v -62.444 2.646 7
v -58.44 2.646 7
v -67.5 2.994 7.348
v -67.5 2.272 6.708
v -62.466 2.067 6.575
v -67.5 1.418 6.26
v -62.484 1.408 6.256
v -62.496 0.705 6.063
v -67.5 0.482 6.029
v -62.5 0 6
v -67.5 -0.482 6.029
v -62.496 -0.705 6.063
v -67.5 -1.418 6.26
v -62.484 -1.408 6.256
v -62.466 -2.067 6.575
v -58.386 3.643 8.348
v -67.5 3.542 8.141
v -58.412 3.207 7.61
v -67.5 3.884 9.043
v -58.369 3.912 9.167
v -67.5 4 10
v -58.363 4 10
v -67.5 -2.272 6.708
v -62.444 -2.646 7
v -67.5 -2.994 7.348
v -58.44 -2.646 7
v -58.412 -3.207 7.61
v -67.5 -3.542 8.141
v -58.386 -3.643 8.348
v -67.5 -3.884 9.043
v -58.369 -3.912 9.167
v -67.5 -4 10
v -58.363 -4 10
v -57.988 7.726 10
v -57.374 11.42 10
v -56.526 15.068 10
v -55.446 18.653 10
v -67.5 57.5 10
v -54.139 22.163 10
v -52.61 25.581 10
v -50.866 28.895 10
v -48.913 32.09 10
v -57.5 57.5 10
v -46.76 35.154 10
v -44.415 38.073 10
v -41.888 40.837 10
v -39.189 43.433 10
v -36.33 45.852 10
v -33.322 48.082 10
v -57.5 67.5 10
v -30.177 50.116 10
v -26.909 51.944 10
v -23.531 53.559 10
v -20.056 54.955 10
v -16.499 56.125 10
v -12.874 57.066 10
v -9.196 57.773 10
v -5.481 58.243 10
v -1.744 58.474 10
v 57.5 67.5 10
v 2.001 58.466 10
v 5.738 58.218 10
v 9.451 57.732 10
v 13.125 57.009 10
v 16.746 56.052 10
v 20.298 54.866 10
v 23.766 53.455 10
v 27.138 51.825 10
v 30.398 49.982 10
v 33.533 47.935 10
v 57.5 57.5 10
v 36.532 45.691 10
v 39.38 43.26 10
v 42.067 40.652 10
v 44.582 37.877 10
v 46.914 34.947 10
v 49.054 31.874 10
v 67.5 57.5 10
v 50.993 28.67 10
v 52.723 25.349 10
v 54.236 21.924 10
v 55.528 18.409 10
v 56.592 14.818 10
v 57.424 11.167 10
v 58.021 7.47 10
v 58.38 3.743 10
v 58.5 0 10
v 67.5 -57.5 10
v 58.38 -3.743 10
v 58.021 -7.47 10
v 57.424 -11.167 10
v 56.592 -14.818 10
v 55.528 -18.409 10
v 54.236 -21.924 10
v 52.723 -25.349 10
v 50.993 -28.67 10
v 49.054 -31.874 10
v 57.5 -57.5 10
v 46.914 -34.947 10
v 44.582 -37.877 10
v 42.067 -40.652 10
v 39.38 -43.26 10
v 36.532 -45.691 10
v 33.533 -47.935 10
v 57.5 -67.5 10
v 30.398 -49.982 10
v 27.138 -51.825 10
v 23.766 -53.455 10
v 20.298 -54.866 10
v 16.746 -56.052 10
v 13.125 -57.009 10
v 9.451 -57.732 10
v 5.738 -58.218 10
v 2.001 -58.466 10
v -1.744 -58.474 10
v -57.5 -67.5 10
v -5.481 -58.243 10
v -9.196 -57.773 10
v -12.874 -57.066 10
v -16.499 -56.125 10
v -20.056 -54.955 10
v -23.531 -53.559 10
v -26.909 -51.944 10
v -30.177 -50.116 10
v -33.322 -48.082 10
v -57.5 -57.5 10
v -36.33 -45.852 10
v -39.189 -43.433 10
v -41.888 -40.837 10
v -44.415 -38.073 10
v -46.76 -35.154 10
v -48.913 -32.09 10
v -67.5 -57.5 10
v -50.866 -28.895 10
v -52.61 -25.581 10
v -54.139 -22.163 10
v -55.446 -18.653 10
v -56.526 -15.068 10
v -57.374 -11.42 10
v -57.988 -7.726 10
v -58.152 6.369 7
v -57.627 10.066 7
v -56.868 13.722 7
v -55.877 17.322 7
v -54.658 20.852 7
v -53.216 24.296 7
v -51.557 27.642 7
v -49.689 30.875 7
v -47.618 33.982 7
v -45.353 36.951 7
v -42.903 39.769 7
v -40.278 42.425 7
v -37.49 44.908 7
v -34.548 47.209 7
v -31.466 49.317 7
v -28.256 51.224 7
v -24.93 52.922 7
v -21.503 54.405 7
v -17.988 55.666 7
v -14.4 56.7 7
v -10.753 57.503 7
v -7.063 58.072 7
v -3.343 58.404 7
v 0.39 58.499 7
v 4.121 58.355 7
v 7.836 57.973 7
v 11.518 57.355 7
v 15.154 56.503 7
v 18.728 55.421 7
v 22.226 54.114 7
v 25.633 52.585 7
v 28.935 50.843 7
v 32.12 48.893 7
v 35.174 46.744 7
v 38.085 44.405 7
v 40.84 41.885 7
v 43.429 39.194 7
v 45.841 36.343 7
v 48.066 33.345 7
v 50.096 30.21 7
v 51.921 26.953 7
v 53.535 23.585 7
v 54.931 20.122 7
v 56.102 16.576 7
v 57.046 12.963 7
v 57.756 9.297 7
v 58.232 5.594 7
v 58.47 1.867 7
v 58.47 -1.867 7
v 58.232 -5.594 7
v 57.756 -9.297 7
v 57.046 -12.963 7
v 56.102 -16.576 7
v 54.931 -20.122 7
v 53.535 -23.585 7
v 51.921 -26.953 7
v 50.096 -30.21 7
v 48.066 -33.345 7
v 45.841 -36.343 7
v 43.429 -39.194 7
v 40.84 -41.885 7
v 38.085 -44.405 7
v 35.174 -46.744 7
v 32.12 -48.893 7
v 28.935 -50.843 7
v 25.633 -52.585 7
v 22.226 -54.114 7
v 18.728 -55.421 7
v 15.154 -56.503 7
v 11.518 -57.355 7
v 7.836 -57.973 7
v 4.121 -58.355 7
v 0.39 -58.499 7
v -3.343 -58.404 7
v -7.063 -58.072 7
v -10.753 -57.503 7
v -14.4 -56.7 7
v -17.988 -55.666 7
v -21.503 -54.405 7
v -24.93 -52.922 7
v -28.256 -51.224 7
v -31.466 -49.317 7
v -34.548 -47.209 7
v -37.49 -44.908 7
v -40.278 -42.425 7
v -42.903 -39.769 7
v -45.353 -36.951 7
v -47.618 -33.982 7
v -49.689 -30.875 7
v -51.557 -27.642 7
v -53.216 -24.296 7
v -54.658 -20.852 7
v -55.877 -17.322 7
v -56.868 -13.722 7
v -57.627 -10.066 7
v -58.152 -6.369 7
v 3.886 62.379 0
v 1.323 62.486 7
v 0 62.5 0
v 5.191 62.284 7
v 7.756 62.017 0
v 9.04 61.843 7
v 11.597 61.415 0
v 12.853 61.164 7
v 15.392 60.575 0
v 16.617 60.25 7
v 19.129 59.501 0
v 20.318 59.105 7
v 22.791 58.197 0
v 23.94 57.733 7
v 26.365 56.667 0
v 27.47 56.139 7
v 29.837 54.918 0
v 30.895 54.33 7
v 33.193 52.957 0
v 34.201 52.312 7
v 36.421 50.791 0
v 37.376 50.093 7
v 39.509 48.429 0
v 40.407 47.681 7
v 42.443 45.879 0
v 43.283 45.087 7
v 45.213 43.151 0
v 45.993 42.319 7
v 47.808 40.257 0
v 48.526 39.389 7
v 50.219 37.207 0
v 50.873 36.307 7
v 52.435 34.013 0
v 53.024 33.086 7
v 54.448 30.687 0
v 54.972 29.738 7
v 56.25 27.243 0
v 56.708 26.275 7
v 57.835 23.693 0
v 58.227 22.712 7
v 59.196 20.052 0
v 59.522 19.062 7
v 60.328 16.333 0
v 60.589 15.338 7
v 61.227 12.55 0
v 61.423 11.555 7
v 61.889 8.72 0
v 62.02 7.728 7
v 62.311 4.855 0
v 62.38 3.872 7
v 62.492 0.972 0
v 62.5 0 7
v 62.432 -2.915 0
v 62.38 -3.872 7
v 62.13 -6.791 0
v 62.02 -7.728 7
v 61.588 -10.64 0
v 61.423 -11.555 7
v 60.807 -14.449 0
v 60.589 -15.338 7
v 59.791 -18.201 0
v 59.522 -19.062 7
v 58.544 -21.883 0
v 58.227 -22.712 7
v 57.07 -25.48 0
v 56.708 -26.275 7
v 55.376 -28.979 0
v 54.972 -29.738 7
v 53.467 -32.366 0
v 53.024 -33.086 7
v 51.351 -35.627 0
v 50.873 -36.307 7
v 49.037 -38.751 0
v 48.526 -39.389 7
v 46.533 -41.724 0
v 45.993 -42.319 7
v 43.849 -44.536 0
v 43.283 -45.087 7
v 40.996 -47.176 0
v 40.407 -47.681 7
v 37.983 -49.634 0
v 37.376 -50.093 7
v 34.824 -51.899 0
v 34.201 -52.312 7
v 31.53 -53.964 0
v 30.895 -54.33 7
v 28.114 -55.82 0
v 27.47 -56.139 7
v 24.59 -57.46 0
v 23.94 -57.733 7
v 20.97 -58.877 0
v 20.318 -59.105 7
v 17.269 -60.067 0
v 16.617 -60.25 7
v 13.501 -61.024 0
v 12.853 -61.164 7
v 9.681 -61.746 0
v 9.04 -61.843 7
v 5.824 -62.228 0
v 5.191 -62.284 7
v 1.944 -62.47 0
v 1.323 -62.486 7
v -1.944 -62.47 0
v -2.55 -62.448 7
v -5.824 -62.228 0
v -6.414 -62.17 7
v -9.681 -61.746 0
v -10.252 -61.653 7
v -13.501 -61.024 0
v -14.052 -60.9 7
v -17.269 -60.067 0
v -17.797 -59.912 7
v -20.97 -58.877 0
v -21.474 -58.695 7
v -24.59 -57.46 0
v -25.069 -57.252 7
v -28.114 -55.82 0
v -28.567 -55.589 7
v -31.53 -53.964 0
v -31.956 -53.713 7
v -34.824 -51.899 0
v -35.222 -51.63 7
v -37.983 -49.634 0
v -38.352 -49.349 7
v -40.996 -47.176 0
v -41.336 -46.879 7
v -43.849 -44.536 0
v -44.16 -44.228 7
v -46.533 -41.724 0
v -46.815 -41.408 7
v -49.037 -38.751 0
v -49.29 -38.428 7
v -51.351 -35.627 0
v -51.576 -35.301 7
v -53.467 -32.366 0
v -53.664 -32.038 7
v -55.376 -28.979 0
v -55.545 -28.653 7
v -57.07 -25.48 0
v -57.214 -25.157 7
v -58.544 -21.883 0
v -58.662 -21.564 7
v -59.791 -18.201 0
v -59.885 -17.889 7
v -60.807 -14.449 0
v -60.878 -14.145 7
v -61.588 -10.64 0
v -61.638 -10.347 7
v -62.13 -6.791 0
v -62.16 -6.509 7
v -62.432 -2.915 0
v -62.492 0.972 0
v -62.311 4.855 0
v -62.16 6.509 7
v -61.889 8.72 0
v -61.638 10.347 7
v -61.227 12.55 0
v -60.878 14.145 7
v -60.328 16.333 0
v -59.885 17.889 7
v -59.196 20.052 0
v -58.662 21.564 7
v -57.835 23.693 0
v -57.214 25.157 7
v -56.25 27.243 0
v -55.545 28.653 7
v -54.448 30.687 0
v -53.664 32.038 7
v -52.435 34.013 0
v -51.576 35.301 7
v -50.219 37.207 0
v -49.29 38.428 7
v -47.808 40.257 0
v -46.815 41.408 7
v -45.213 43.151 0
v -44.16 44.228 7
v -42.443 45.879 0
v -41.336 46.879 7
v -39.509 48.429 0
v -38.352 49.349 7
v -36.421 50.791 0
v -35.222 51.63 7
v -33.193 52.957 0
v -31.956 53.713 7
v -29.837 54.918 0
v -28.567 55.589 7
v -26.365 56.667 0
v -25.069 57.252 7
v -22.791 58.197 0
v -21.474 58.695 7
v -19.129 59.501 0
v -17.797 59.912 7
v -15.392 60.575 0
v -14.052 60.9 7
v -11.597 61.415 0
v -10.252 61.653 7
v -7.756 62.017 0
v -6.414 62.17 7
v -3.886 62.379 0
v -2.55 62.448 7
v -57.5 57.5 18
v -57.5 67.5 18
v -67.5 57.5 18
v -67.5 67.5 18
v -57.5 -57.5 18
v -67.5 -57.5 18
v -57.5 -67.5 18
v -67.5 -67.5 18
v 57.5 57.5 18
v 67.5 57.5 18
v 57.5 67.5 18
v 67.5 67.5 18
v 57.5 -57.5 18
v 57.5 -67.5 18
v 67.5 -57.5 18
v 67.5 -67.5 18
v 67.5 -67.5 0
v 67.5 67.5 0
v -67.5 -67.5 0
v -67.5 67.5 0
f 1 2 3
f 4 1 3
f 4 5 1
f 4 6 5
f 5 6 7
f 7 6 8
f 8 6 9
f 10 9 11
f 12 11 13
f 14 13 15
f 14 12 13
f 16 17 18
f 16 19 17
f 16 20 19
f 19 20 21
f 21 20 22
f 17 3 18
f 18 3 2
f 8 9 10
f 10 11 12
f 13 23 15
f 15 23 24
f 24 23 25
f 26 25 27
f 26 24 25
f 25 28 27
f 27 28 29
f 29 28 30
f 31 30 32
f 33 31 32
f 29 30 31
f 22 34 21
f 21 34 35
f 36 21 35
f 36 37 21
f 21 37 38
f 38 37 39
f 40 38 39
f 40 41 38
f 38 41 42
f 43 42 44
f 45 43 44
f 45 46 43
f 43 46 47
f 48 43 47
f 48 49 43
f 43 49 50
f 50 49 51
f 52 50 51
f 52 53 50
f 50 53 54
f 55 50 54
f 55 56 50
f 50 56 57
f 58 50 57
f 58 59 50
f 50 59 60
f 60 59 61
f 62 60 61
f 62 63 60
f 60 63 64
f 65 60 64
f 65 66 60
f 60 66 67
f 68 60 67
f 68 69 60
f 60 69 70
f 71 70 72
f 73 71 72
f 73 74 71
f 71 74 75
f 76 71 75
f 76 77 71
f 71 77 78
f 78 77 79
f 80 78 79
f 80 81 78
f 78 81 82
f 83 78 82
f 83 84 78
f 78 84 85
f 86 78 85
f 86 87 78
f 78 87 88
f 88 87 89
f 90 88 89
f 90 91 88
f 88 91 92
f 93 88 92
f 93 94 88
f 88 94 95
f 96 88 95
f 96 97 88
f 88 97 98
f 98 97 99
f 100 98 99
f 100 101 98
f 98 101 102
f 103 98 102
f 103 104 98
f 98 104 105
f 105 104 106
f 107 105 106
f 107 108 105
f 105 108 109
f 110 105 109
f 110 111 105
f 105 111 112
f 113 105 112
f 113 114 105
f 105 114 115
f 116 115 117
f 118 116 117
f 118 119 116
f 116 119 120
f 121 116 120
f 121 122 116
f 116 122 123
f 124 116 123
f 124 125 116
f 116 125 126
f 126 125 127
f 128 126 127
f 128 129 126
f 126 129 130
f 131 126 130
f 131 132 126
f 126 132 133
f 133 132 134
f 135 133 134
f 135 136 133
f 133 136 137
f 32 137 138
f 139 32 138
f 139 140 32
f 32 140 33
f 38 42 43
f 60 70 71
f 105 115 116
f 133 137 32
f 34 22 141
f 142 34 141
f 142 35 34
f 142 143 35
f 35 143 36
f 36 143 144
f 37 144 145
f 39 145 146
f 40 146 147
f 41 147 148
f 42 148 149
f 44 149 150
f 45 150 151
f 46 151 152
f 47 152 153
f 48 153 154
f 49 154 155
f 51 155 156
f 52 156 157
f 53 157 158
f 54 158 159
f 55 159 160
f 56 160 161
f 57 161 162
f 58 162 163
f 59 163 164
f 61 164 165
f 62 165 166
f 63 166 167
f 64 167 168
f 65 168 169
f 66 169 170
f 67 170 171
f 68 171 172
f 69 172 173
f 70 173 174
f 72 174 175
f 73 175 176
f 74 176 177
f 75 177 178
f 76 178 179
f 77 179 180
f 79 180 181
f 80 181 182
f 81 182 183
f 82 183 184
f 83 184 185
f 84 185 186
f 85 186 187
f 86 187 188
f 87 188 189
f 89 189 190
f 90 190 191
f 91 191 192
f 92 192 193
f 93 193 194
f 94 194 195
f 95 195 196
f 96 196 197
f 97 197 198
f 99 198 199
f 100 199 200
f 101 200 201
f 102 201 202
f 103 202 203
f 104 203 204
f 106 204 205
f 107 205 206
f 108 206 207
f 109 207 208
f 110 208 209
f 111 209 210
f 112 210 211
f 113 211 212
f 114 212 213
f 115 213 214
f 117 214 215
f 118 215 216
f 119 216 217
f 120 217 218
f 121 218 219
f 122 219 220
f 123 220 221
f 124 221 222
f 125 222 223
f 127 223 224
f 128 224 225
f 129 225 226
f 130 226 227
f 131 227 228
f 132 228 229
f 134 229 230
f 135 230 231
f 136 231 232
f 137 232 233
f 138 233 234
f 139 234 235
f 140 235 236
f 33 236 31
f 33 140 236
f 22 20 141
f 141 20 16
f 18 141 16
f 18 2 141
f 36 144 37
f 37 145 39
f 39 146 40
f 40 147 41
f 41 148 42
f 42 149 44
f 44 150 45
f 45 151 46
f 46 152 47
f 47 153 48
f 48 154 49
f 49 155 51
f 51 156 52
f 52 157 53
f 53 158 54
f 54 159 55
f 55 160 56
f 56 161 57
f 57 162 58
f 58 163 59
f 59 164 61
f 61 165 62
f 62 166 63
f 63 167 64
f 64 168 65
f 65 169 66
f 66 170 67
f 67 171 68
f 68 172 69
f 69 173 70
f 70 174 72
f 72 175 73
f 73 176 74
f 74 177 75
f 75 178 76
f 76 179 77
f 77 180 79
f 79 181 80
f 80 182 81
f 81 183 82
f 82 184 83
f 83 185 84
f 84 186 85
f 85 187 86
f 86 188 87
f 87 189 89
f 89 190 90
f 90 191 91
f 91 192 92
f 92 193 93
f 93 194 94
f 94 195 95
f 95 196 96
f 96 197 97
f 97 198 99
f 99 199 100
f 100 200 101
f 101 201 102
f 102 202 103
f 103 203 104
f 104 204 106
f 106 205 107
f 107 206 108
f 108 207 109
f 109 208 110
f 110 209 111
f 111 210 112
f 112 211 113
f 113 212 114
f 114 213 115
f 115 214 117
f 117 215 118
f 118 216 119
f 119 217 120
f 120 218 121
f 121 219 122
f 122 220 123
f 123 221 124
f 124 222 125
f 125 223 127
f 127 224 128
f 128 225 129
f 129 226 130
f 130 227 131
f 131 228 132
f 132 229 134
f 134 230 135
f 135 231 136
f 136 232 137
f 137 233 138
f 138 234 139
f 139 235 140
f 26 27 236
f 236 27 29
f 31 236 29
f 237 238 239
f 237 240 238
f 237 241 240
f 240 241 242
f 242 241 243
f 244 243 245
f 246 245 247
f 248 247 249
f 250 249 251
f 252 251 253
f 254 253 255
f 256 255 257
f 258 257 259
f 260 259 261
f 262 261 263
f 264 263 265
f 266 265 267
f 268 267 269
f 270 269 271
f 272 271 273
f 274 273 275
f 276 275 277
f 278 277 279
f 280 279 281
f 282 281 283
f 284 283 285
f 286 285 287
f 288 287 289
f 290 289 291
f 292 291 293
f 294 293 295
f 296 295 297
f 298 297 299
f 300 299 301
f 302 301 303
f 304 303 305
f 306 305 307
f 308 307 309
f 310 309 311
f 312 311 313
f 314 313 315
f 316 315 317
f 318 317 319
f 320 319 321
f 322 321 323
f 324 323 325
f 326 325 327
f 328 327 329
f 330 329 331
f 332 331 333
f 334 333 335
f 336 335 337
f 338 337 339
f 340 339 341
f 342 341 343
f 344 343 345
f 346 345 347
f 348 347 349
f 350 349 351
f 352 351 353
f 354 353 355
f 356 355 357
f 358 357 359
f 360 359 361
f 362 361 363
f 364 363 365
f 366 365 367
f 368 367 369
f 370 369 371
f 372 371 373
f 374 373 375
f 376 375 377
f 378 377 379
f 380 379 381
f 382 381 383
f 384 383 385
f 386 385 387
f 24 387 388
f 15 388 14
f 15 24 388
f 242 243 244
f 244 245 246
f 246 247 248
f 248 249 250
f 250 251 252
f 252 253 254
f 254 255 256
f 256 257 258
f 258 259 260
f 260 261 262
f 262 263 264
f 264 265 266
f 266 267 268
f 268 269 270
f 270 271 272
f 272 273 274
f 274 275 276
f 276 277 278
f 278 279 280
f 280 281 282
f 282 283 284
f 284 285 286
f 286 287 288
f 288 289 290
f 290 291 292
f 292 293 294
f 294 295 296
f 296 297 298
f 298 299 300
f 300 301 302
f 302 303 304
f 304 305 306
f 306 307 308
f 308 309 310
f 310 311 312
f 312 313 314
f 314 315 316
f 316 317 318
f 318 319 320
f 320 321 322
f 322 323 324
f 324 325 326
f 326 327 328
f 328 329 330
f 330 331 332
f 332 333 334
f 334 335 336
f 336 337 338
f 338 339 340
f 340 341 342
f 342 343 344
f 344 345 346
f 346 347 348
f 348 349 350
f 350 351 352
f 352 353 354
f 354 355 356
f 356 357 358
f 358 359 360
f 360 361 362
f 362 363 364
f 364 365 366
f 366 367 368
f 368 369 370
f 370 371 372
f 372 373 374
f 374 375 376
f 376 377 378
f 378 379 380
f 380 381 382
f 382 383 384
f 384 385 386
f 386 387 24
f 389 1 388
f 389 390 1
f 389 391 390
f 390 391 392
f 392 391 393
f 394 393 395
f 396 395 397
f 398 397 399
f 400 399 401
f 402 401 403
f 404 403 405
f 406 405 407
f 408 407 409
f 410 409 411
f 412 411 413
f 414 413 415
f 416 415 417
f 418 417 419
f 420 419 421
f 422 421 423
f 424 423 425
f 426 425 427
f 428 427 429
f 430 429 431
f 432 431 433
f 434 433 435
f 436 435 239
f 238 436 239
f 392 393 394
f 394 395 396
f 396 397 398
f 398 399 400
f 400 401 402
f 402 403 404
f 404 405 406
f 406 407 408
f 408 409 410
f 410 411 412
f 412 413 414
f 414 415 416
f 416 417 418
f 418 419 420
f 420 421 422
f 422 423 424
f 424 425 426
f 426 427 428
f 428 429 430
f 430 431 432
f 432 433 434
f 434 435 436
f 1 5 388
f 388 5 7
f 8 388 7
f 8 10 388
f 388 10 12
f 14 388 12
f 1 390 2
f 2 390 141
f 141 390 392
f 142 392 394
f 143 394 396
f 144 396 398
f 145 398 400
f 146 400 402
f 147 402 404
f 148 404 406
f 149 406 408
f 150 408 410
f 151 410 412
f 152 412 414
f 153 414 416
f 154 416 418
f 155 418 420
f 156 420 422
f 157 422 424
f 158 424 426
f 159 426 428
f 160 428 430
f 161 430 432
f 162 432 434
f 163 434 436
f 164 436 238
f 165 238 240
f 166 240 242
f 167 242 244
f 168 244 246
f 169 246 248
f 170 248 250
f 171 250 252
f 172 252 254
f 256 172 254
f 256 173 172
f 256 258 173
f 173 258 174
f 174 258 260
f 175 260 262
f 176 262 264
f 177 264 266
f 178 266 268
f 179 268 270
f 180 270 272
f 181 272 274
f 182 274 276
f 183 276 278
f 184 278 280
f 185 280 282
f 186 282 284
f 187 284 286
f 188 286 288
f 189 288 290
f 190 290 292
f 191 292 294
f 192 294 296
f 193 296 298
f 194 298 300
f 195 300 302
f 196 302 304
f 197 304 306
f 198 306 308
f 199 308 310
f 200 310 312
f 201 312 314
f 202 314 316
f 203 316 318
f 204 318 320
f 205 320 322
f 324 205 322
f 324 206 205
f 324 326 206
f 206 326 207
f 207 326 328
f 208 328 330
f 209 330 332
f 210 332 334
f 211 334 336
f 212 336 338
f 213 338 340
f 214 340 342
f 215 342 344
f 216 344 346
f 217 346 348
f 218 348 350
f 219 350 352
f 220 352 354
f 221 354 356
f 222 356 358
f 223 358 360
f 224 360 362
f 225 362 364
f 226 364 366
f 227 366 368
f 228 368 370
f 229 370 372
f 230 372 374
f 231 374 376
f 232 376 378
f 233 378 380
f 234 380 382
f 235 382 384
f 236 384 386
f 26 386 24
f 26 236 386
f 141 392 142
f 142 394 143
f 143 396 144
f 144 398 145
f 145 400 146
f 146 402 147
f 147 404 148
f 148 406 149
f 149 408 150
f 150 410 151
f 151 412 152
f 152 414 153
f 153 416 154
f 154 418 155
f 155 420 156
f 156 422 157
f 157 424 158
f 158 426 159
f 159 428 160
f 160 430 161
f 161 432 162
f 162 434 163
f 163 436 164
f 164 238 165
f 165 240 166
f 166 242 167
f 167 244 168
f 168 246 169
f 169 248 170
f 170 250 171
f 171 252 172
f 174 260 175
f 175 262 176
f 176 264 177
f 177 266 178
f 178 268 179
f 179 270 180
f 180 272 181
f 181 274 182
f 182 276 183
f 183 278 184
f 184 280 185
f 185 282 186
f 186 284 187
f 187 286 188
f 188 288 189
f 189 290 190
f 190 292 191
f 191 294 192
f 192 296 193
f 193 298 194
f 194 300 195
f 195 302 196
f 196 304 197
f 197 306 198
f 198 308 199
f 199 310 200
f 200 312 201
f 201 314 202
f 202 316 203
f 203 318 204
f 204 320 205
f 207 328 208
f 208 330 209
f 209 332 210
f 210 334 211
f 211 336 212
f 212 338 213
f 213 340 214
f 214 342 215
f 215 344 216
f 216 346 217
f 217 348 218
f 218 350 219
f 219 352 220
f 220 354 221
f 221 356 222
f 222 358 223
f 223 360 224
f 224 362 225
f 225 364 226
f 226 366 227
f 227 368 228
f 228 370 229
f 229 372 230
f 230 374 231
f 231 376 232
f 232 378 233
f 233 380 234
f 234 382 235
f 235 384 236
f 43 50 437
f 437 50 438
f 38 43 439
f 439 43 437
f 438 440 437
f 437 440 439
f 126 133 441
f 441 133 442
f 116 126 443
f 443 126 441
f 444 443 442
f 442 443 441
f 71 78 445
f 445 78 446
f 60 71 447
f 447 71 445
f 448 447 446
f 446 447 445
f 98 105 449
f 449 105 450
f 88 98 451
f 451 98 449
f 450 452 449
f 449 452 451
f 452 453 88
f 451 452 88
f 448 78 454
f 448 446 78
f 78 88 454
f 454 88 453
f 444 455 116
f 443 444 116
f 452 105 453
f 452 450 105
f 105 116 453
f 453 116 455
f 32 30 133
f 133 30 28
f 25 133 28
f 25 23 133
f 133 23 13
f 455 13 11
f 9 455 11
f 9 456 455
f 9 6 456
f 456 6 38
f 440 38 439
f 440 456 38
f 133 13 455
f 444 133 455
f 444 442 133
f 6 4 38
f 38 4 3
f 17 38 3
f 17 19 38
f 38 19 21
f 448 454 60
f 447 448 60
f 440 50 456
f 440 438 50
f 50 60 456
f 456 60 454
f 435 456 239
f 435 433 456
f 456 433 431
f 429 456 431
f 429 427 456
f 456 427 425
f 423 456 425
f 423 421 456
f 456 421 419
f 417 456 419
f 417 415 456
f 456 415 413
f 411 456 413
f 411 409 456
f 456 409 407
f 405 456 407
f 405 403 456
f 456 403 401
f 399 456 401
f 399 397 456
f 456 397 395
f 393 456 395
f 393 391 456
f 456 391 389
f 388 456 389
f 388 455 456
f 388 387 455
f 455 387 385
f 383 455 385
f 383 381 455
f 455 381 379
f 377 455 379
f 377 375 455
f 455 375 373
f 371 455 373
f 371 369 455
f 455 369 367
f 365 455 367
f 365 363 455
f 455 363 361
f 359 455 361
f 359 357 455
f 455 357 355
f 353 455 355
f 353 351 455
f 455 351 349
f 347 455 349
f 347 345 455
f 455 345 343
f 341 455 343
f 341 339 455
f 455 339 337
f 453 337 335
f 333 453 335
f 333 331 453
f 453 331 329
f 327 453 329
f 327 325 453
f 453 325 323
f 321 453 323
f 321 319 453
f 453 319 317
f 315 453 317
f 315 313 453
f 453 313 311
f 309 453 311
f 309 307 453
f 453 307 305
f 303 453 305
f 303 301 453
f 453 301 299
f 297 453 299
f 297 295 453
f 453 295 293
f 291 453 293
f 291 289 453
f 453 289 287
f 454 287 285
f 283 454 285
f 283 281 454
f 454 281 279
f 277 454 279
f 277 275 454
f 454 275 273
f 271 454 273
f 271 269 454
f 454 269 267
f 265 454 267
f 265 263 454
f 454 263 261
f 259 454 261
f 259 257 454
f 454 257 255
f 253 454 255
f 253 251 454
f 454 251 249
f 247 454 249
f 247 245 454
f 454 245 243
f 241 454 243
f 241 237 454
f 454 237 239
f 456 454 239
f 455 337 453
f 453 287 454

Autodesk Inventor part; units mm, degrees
ref_plane "YZ Plane" through (0, 0, 0) normal (1, 0, 0) x (0, 1, 0)
ref_plane "XZ Plane" through (0, 0, 0) normal (0, 1, 0) x (-1, 0, 0)
ref_plane "XY Plane" through (0, 0, 0) normal (0, 0, 1) x (1, 0, 0)
sketch "Boceto1" plane through (0, 0, 0) normal (0, 0, 1) x (1, 0, 0)
  circle A0 centre (0, 0) radius 62.5
  line L0 (62.5, 0) -> (67.5, 0)
  line L1 (0, 62.5) -> (0, 67.5)
  line L2 (0, 62.5) -> (5, 62.5) construction
  line L3 (0, 67.5) -> (67.5, 67.5)
  line L4 (67.5, 67.5) -> (67.5, 0)
  line L5 (-62.5, 0) -> (-67.5, 0)
  line L6 (-62.5, 0) -> (-57.5, 0) construction
  line L7 (0, -62.5) -> (0, -67.5)
  line L8 (0, -62.5) -> (5, -62.5) construction
  line L9 (0, -67.5) -> (-67.5, -67.5)
  line L10 (-67.5, -67.5) -> (67.5, -67.5)
  line L11 (67.5, -67.5) -> (67.5, 67.5)
  line L12 (67.5, 67.5) -> (-67.5, 67.5)
  line L13 (-67.5, 67.5) -> (-67.5, -67.5)
  dimension "d0" = 125
  dimension "d1" = 5
  dimension "d2" = 5
  dimension "d3" = 90
  dimension "d4" = 90
  dimension "d5" = 5
  dimension "d6" = 180
  dimension "d7" = 5
  dimension "d8" = 90
  dimension "d9" = 90
extrude "Extrusión1" add sketch "Boceto1" along normal blind 7 contours L0 L11 L10 L7 A0 | A0 L1 L3 L4 L0 | A0 L5 L13 L12 L1 | L7 L9 L13 L5 A0
sketch "Boceto2" plane through (0, 0, 7) normal (0, 0, 1) x (1, 0, 0)
  line L0 (-67.5, 67.5) -> (67.5, 67.5)
  line L1 (67.5, 67.5) -> (67.5, -67.5)
  line L2 (67.5, -67.5) -> (-67.5, -67.5)
  line L3 (-67.5, -67.5) -> (-67.5, 67.5)
  circle A0 centre (0, 0) radius 58.5
  dimension "d12" = 117
extrude "Extrusión2" add sketch "Boceto2" along normal blind 3
sketch "Boceto3" plane through (0, 0, 10) normal (0, 0, 1) x (1, 0, 0)
  line L0 (-67.5, -67.5) -> (-57.5, -67.5)
  line L1 (-57.5, -67.5) -> (-57.5, -57.5)
  line L2 (-57.5, -57.5) -> (-67.5, -57.5)
  line L3 (-67.5, -57.5) -> (-67.5, -67.5)
  line L4 (67.5, 67.5) -> (57.5, 67.5)
  line L5 (57.5, 67.5) -> (57.5, 57.5)
  line L6 (57.5, 57.5) -> (67.5, 57.5)
  line L7 (67.5, 57.5) -> (67.5, 67.5)
  line L8 (-67.5, 67.5) -> (-57.5, 67.5)
  line L9 (-57.5, 67.5) -> (-57.5, 57.5)
  line L10 (-57.5, 57.5) -> (-67.5, 57.5)
  line L11 (-67.5, 57.5) -> (-67.5, 67.5)
  line L12 (67.5, -67.5) -> (57.5, -67.5)
  line L13 (57.5, -67.5) -> (57.5, -57.5)
  line L14 (57.5, -57.5) -> (67.5, -57.5)
  line L15 (67.5, -57.5) -> (67.5, -67.5)
  point P0 (0, 0)
  dimension "d15" = 10
  dimension "d16" = 10
  dimension "d17" = 10
  dimension "d18" = 10
  dimension "d19" = 10
  dimension "d20" = 10
  dimension "d21" = 10
  dimension "d22" = 10
extrude "Extrusión3" add sketch "Boceto3" along normal blind 8
sketch "Boceto4" plane through (-67.5, -67.5, 0) normal (-1, 0, 0) x (0, 0, 1)
  line L0 (0, 67.5) -> (10, 67.5)
  line L1 (10, 10) -> (10, 125) projected
  line L2 (10, 67.5) -> (10, 71.5)
  line L3 (10, 67.5) -> (14, 67.5) construction
  line L4 (10, 67.5) -> (10, 63.5)
  line L5 (10, 67.5) -> (14, 67.5) construction
  line L6 (10, 67.5) -> (6, 67.5)
  arc A0 (10, 71.5) -> (10, 63.5) centre (10, 67.5) ccw
  dimension "d25" = 4
  dimension "d26" = 90
  dimension "d27" = 4
  dimension "d28" = 90
  dimension "d29" = 4
extrude "Extrusión4" cut sketch "Boceto4" against normal blind 10
properties part number "lamp_holder_v1"
